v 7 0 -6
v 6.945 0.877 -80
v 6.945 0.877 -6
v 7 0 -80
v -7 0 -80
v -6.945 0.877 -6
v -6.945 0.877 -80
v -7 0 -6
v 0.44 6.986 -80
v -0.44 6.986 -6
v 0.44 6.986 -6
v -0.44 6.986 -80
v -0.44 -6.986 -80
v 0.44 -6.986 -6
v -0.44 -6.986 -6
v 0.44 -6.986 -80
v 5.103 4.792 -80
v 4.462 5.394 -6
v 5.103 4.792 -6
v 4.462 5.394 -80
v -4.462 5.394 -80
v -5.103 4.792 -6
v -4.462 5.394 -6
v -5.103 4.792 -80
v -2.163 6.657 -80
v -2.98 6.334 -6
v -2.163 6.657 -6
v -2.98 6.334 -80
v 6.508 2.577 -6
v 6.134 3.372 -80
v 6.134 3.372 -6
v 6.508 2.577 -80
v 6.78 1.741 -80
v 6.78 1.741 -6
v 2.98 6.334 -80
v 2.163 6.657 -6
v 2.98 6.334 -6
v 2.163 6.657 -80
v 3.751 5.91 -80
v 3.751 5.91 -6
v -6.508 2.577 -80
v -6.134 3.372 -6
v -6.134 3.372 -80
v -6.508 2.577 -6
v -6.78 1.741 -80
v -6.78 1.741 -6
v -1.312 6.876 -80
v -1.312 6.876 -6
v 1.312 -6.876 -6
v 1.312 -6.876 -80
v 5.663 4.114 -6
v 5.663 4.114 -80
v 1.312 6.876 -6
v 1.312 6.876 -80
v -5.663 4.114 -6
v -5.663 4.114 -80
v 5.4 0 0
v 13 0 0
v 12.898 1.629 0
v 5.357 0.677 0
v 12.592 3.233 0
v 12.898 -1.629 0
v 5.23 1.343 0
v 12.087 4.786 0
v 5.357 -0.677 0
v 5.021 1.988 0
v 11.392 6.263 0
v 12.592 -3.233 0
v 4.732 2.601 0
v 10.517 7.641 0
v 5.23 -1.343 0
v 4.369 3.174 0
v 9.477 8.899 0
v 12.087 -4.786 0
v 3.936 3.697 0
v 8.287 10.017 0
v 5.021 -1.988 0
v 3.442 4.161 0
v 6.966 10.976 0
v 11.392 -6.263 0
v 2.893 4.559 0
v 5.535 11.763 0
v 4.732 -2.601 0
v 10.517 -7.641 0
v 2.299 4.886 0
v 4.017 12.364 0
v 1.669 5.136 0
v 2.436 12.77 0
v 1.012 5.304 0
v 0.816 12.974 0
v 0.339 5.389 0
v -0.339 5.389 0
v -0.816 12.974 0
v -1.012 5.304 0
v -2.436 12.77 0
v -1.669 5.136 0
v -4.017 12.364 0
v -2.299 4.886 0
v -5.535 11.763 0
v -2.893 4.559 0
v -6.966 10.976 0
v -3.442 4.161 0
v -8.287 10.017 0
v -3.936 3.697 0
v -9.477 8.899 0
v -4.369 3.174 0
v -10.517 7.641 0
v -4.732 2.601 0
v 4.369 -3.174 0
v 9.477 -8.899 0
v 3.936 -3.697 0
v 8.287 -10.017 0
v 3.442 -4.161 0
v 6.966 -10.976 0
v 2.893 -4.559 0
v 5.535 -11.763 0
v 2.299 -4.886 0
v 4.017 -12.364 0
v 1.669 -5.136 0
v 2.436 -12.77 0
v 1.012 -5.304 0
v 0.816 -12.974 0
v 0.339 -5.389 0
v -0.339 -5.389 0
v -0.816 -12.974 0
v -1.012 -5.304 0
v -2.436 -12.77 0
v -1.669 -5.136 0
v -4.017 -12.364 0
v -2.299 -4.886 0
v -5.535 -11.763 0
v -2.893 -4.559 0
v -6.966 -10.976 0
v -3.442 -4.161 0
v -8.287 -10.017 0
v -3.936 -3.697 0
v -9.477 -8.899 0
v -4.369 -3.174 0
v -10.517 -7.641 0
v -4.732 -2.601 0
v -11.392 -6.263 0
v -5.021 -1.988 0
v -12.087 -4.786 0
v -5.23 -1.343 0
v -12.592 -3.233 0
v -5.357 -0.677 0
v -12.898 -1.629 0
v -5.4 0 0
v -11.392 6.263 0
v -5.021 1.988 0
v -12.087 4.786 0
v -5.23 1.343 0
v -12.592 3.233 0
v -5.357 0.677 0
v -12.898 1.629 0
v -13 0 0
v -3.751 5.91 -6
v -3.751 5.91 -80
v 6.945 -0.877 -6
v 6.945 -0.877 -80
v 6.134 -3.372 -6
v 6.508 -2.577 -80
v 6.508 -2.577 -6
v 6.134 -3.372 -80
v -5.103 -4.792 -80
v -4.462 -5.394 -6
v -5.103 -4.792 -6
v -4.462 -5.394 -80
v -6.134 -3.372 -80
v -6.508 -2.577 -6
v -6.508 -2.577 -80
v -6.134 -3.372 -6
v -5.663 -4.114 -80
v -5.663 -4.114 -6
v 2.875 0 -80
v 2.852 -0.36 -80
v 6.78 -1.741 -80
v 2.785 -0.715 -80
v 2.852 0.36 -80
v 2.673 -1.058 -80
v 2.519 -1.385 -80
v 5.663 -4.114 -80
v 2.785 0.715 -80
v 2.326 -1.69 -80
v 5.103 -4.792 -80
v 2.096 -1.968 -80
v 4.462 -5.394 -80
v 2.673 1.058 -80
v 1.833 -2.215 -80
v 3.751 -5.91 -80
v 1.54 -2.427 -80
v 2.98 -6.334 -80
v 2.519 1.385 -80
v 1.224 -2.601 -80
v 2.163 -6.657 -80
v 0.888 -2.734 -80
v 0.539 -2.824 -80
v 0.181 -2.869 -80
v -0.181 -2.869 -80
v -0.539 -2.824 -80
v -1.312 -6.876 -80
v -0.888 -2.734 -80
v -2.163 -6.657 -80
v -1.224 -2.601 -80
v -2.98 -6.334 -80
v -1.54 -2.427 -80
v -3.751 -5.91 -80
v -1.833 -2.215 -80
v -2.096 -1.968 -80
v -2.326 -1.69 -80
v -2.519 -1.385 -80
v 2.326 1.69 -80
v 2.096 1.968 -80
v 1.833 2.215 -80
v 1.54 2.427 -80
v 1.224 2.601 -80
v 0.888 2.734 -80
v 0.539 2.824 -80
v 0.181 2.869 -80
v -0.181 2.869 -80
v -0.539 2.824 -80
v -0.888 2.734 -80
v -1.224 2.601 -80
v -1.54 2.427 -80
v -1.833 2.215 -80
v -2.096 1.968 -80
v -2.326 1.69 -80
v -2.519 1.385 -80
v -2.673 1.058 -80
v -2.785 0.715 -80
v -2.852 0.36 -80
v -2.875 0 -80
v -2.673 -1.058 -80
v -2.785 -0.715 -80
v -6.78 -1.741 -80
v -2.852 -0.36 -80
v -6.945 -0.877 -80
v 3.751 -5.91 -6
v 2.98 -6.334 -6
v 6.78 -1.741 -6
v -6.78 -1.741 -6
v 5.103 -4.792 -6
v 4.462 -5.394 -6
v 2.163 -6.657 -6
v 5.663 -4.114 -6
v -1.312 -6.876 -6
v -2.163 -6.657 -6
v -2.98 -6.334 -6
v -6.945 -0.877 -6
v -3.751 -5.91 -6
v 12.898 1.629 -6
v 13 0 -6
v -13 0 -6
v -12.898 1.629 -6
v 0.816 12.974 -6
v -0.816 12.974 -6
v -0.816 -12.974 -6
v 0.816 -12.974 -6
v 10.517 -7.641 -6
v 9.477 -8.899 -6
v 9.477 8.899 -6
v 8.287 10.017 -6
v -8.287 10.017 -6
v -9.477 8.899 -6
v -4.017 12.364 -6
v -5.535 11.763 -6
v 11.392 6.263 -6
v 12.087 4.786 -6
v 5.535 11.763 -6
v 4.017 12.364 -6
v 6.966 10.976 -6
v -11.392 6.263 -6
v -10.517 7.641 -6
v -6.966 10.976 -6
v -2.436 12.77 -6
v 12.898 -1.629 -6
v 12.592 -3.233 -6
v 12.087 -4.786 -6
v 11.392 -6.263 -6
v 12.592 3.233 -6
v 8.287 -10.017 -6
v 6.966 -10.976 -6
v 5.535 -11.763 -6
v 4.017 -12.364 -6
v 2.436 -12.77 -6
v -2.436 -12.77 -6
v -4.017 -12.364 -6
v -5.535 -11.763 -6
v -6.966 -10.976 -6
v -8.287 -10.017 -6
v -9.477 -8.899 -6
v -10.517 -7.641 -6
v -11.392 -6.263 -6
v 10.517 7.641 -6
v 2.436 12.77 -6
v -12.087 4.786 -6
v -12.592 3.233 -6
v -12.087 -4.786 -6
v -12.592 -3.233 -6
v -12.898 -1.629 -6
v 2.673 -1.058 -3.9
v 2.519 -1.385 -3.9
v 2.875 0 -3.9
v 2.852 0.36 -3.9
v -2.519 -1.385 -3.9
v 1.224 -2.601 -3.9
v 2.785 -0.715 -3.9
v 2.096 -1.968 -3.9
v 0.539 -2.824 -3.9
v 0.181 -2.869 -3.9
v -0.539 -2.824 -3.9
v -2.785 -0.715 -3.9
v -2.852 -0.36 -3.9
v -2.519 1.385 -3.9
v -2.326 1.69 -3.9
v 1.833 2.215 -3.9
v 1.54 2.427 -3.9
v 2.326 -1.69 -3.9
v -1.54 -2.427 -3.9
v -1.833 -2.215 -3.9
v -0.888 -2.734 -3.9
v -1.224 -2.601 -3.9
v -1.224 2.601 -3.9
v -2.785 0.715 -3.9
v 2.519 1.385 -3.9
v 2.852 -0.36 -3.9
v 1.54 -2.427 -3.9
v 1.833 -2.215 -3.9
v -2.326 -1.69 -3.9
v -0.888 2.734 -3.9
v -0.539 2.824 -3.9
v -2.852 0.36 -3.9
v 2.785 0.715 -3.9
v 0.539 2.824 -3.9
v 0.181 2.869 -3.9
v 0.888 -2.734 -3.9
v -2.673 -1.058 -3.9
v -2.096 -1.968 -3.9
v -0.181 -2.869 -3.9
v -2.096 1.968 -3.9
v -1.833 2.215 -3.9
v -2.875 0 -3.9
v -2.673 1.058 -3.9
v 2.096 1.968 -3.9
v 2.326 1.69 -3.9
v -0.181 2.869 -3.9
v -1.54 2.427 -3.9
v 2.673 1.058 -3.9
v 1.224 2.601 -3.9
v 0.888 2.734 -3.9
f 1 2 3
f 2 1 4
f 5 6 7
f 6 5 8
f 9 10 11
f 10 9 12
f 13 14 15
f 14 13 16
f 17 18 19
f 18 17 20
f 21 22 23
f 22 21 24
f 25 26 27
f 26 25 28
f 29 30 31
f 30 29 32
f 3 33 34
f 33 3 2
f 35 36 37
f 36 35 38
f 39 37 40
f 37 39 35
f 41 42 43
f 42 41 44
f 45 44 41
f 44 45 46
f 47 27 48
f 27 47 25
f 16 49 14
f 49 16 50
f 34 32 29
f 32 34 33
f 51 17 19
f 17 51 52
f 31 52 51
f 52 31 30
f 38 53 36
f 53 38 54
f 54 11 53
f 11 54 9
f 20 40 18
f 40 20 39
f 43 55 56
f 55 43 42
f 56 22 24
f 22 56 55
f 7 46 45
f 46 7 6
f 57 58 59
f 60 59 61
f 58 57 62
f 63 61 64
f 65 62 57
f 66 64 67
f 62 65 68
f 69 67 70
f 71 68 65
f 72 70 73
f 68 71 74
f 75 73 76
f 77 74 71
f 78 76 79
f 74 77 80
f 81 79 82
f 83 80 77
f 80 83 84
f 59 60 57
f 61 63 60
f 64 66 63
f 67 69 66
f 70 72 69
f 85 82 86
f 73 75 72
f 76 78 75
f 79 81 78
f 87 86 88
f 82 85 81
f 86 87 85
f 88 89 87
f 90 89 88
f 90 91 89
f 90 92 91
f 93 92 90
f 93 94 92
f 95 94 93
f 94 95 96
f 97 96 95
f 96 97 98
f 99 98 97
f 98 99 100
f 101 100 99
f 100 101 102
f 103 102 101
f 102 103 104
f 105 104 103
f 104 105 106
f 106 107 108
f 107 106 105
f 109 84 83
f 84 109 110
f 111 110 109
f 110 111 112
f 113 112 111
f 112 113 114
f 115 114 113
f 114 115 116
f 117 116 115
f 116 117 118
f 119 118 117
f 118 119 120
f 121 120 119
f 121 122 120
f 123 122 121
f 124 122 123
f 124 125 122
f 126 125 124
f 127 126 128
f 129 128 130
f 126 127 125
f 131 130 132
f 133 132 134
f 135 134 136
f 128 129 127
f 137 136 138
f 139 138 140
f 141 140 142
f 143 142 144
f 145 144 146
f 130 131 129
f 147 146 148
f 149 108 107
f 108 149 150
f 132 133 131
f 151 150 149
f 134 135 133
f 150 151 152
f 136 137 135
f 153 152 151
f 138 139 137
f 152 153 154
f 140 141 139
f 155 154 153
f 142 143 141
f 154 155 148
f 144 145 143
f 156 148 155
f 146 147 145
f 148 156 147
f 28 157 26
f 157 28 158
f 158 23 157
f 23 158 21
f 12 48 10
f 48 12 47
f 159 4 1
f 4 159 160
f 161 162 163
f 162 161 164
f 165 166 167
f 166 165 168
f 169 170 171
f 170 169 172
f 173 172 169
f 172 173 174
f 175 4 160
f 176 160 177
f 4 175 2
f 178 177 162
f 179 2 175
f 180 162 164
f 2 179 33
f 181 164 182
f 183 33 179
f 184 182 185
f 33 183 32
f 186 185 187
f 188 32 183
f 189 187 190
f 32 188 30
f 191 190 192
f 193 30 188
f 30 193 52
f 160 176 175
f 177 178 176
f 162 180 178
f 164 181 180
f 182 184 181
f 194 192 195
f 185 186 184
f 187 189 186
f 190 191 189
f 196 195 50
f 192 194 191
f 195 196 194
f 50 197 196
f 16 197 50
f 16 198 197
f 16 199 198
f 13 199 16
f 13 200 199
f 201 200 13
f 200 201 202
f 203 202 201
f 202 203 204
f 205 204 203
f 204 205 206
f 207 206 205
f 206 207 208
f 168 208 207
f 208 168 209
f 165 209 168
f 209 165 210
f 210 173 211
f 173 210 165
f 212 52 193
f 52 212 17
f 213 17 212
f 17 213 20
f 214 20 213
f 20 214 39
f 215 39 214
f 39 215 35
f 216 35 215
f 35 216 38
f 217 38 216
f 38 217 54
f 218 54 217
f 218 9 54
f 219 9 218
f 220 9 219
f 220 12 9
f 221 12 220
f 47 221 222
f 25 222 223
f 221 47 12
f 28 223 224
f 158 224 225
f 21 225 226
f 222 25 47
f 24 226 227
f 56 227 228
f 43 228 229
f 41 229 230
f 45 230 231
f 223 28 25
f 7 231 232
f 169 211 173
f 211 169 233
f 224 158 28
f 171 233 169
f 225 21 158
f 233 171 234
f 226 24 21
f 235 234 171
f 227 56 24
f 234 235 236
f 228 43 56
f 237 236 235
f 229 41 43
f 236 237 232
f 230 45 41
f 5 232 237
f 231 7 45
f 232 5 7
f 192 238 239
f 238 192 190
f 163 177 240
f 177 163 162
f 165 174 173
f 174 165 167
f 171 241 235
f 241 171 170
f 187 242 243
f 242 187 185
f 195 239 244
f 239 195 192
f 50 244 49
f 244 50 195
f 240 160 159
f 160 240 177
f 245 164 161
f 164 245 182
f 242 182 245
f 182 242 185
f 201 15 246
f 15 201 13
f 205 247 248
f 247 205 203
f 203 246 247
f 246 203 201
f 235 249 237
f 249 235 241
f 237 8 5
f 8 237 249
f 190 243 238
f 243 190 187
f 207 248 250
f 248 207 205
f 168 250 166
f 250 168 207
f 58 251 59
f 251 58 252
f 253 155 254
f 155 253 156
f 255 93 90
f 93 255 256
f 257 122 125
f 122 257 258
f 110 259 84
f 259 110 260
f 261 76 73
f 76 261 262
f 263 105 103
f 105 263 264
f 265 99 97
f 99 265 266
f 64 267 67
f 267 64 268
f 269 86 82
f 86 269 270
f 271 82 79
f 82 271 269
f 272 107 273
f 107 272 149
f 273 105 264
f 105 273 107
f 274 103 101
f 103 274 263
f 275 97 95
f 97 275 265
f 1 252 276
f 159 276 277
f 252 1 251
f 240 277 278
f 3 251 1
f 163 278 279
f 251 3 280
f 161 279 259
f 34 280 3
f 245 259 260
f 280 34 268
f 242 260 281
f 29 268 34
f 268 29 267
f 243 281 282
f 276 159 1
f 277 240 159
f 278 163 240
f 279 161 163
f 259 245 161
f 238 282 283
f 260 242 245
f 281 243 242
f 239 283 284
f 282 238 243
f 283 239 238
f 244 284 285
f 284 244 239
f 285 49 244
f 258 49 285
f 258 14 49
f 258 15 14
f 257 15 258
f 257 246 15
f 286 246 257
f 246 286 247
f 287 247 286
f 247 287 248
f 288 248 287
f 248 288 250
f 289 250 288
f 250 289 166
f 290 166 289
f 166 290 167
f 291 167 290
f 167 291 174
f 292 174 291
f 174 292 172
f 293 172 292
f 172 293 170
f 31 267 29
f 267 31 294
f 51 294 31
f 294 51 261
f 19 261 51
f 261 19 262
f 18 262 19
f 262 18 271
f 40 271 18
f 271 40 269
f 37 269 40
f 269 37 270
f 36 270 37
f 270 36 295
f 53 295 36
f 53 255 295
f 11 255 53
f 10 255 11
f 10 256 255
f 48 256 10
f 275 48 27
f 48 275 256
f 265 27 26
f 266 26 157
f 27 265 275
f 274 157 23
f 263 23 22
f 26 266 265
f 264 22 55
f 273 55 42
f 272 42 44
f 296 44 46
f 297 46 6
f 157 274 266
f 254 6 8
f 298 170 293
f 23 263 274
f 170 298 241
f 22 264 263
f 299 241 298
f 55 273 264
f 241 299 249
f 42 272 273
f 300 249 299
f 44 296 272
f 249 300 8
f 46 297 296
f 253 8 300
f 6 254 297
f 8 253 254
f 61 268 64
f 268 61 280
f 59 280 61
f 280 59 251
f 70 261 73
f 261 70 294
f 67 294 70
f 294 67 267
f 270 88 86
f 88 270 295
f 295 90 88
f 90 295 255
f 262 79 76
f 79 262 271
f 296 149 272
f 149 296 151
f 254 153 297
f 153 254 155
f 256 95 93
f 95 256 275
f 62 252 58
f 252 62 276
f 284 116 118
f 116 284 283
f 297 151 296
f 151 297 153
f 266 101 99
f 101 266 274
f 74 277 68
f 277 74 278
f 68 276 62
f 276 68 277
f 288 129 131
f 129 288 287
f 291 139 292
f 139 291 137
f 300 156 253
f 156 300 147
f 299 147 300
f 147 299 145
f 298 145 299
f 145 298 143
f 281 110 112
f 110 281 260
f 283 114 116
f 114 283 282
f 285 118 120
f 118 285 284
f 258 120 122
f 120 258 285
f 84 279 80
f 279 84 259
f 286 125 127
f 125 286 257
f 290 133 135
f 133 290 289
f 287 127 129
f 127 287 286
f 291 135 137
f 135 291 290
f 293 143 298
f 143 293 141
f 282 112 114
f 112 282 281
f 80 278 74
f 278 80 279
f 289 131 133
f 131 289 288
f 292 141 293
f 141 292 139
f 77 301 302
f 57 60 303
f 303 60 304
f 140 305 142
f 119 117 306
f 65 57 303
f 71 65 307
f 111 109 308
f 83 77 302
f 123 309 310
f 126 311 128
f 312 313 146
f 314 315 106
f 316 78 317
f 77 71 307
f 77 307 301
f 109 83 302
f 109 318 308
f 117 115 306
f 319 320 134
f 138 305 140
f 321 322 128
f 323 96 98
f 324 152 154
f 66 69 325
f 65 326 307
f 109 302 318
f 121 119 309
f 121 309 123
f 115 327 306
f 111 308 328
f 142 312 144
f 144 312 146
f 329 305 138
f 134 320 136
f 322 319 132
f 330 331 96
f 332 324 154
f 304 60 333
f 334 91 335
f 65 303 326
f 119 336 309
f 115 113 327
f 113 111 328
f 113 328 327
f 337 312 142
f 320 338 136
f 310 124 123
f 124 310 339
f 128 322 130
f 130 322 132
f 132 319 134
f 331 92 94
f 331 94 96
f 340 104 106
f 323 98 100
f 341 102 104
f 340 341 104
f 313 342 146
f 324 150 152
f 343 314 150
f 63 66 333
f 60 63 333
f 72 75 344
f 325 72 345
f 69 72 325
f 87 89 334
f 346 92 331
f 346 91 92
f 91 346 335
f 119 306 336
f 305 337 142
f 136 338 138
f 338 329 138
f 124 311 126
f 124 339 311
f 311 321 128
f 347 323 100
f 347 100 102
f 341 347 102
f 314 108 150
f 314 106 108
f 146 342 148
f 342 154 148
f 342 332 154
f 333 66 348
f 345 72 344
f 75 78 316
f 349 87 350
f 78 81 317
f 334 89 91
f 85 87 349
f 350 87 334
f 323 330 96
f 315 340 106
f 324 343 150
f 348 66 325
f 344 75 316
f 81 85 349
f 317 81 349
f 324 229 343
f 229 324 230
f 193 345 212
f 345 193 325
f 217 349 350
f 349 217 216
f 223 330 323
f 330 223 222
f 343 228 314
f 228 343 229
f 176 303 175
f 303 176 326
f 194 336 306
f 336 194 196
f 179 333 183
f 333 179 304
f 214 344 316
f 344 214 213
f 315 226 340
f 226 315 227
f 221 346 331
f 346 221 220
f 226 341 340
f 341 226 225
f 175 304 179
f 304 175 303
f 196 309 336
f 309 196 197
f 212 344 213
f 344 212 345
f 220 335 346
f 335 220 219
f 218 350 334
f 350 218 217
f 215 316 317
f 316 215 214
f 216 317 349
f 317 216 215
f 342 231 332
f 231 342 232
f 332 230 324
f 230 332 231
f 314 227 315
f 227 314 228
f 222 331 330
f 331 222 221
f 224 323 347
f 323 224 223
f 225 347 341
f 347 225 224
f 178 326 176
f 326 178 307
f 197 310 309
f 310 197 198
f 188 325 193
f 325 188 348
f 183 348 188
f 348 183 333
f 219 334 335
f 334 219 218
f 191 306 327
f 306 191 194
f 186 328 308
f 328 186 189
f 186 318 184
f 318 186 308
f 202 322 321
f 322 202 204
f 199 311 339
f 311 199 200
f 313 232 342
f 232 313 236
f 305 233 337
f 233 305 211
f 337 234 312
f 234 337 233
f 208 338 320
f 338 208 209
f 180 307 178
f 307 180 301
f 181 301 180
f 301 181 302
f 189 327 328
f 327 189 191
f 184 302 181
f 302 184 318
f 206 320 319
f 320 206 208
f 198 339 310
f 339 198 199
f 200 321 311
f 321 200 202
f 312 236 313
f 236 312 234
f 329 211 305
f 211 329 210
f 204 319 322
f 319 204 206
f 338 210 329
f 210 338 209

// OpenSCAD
$fn = 50;


difference() {
	union() {
		translate(v = [0, 0, -80.0000000000]) {
			cylinder(h = 80, r = 7.0000000000);
		}
		translate(v = [0, 0, -6.0000000000]) {
			cylinder(h = 6, r = 13.0000000000);
		}
	}
	union() {
		translate(v = [0, 0, 0]) {
			rotate(a = [0, 0, 0]) {
				difference() {
					union() {
						#translate(v = [0, 0, -80.0000000000]) {
							cylinder(h = 80, r = 2.6000000000);
						}
						#translate(v = [0, 0, -3.9000000000]) {
							cylinder(h = 3.9000000000, r1 = 2.8750000000, r2 = 5.4000000000);
						}
						#translate(v = [0, 0, -80.0000000000]) {
							cylinder(h = 80, r = 2.8750000000);
						}
						#translate(v = [0, 0, -80.0000000000]) {
							cylinder(h = 80, r = 2.6000000000);
						}
					}
					union();
				}
			}
		}
	}
}
